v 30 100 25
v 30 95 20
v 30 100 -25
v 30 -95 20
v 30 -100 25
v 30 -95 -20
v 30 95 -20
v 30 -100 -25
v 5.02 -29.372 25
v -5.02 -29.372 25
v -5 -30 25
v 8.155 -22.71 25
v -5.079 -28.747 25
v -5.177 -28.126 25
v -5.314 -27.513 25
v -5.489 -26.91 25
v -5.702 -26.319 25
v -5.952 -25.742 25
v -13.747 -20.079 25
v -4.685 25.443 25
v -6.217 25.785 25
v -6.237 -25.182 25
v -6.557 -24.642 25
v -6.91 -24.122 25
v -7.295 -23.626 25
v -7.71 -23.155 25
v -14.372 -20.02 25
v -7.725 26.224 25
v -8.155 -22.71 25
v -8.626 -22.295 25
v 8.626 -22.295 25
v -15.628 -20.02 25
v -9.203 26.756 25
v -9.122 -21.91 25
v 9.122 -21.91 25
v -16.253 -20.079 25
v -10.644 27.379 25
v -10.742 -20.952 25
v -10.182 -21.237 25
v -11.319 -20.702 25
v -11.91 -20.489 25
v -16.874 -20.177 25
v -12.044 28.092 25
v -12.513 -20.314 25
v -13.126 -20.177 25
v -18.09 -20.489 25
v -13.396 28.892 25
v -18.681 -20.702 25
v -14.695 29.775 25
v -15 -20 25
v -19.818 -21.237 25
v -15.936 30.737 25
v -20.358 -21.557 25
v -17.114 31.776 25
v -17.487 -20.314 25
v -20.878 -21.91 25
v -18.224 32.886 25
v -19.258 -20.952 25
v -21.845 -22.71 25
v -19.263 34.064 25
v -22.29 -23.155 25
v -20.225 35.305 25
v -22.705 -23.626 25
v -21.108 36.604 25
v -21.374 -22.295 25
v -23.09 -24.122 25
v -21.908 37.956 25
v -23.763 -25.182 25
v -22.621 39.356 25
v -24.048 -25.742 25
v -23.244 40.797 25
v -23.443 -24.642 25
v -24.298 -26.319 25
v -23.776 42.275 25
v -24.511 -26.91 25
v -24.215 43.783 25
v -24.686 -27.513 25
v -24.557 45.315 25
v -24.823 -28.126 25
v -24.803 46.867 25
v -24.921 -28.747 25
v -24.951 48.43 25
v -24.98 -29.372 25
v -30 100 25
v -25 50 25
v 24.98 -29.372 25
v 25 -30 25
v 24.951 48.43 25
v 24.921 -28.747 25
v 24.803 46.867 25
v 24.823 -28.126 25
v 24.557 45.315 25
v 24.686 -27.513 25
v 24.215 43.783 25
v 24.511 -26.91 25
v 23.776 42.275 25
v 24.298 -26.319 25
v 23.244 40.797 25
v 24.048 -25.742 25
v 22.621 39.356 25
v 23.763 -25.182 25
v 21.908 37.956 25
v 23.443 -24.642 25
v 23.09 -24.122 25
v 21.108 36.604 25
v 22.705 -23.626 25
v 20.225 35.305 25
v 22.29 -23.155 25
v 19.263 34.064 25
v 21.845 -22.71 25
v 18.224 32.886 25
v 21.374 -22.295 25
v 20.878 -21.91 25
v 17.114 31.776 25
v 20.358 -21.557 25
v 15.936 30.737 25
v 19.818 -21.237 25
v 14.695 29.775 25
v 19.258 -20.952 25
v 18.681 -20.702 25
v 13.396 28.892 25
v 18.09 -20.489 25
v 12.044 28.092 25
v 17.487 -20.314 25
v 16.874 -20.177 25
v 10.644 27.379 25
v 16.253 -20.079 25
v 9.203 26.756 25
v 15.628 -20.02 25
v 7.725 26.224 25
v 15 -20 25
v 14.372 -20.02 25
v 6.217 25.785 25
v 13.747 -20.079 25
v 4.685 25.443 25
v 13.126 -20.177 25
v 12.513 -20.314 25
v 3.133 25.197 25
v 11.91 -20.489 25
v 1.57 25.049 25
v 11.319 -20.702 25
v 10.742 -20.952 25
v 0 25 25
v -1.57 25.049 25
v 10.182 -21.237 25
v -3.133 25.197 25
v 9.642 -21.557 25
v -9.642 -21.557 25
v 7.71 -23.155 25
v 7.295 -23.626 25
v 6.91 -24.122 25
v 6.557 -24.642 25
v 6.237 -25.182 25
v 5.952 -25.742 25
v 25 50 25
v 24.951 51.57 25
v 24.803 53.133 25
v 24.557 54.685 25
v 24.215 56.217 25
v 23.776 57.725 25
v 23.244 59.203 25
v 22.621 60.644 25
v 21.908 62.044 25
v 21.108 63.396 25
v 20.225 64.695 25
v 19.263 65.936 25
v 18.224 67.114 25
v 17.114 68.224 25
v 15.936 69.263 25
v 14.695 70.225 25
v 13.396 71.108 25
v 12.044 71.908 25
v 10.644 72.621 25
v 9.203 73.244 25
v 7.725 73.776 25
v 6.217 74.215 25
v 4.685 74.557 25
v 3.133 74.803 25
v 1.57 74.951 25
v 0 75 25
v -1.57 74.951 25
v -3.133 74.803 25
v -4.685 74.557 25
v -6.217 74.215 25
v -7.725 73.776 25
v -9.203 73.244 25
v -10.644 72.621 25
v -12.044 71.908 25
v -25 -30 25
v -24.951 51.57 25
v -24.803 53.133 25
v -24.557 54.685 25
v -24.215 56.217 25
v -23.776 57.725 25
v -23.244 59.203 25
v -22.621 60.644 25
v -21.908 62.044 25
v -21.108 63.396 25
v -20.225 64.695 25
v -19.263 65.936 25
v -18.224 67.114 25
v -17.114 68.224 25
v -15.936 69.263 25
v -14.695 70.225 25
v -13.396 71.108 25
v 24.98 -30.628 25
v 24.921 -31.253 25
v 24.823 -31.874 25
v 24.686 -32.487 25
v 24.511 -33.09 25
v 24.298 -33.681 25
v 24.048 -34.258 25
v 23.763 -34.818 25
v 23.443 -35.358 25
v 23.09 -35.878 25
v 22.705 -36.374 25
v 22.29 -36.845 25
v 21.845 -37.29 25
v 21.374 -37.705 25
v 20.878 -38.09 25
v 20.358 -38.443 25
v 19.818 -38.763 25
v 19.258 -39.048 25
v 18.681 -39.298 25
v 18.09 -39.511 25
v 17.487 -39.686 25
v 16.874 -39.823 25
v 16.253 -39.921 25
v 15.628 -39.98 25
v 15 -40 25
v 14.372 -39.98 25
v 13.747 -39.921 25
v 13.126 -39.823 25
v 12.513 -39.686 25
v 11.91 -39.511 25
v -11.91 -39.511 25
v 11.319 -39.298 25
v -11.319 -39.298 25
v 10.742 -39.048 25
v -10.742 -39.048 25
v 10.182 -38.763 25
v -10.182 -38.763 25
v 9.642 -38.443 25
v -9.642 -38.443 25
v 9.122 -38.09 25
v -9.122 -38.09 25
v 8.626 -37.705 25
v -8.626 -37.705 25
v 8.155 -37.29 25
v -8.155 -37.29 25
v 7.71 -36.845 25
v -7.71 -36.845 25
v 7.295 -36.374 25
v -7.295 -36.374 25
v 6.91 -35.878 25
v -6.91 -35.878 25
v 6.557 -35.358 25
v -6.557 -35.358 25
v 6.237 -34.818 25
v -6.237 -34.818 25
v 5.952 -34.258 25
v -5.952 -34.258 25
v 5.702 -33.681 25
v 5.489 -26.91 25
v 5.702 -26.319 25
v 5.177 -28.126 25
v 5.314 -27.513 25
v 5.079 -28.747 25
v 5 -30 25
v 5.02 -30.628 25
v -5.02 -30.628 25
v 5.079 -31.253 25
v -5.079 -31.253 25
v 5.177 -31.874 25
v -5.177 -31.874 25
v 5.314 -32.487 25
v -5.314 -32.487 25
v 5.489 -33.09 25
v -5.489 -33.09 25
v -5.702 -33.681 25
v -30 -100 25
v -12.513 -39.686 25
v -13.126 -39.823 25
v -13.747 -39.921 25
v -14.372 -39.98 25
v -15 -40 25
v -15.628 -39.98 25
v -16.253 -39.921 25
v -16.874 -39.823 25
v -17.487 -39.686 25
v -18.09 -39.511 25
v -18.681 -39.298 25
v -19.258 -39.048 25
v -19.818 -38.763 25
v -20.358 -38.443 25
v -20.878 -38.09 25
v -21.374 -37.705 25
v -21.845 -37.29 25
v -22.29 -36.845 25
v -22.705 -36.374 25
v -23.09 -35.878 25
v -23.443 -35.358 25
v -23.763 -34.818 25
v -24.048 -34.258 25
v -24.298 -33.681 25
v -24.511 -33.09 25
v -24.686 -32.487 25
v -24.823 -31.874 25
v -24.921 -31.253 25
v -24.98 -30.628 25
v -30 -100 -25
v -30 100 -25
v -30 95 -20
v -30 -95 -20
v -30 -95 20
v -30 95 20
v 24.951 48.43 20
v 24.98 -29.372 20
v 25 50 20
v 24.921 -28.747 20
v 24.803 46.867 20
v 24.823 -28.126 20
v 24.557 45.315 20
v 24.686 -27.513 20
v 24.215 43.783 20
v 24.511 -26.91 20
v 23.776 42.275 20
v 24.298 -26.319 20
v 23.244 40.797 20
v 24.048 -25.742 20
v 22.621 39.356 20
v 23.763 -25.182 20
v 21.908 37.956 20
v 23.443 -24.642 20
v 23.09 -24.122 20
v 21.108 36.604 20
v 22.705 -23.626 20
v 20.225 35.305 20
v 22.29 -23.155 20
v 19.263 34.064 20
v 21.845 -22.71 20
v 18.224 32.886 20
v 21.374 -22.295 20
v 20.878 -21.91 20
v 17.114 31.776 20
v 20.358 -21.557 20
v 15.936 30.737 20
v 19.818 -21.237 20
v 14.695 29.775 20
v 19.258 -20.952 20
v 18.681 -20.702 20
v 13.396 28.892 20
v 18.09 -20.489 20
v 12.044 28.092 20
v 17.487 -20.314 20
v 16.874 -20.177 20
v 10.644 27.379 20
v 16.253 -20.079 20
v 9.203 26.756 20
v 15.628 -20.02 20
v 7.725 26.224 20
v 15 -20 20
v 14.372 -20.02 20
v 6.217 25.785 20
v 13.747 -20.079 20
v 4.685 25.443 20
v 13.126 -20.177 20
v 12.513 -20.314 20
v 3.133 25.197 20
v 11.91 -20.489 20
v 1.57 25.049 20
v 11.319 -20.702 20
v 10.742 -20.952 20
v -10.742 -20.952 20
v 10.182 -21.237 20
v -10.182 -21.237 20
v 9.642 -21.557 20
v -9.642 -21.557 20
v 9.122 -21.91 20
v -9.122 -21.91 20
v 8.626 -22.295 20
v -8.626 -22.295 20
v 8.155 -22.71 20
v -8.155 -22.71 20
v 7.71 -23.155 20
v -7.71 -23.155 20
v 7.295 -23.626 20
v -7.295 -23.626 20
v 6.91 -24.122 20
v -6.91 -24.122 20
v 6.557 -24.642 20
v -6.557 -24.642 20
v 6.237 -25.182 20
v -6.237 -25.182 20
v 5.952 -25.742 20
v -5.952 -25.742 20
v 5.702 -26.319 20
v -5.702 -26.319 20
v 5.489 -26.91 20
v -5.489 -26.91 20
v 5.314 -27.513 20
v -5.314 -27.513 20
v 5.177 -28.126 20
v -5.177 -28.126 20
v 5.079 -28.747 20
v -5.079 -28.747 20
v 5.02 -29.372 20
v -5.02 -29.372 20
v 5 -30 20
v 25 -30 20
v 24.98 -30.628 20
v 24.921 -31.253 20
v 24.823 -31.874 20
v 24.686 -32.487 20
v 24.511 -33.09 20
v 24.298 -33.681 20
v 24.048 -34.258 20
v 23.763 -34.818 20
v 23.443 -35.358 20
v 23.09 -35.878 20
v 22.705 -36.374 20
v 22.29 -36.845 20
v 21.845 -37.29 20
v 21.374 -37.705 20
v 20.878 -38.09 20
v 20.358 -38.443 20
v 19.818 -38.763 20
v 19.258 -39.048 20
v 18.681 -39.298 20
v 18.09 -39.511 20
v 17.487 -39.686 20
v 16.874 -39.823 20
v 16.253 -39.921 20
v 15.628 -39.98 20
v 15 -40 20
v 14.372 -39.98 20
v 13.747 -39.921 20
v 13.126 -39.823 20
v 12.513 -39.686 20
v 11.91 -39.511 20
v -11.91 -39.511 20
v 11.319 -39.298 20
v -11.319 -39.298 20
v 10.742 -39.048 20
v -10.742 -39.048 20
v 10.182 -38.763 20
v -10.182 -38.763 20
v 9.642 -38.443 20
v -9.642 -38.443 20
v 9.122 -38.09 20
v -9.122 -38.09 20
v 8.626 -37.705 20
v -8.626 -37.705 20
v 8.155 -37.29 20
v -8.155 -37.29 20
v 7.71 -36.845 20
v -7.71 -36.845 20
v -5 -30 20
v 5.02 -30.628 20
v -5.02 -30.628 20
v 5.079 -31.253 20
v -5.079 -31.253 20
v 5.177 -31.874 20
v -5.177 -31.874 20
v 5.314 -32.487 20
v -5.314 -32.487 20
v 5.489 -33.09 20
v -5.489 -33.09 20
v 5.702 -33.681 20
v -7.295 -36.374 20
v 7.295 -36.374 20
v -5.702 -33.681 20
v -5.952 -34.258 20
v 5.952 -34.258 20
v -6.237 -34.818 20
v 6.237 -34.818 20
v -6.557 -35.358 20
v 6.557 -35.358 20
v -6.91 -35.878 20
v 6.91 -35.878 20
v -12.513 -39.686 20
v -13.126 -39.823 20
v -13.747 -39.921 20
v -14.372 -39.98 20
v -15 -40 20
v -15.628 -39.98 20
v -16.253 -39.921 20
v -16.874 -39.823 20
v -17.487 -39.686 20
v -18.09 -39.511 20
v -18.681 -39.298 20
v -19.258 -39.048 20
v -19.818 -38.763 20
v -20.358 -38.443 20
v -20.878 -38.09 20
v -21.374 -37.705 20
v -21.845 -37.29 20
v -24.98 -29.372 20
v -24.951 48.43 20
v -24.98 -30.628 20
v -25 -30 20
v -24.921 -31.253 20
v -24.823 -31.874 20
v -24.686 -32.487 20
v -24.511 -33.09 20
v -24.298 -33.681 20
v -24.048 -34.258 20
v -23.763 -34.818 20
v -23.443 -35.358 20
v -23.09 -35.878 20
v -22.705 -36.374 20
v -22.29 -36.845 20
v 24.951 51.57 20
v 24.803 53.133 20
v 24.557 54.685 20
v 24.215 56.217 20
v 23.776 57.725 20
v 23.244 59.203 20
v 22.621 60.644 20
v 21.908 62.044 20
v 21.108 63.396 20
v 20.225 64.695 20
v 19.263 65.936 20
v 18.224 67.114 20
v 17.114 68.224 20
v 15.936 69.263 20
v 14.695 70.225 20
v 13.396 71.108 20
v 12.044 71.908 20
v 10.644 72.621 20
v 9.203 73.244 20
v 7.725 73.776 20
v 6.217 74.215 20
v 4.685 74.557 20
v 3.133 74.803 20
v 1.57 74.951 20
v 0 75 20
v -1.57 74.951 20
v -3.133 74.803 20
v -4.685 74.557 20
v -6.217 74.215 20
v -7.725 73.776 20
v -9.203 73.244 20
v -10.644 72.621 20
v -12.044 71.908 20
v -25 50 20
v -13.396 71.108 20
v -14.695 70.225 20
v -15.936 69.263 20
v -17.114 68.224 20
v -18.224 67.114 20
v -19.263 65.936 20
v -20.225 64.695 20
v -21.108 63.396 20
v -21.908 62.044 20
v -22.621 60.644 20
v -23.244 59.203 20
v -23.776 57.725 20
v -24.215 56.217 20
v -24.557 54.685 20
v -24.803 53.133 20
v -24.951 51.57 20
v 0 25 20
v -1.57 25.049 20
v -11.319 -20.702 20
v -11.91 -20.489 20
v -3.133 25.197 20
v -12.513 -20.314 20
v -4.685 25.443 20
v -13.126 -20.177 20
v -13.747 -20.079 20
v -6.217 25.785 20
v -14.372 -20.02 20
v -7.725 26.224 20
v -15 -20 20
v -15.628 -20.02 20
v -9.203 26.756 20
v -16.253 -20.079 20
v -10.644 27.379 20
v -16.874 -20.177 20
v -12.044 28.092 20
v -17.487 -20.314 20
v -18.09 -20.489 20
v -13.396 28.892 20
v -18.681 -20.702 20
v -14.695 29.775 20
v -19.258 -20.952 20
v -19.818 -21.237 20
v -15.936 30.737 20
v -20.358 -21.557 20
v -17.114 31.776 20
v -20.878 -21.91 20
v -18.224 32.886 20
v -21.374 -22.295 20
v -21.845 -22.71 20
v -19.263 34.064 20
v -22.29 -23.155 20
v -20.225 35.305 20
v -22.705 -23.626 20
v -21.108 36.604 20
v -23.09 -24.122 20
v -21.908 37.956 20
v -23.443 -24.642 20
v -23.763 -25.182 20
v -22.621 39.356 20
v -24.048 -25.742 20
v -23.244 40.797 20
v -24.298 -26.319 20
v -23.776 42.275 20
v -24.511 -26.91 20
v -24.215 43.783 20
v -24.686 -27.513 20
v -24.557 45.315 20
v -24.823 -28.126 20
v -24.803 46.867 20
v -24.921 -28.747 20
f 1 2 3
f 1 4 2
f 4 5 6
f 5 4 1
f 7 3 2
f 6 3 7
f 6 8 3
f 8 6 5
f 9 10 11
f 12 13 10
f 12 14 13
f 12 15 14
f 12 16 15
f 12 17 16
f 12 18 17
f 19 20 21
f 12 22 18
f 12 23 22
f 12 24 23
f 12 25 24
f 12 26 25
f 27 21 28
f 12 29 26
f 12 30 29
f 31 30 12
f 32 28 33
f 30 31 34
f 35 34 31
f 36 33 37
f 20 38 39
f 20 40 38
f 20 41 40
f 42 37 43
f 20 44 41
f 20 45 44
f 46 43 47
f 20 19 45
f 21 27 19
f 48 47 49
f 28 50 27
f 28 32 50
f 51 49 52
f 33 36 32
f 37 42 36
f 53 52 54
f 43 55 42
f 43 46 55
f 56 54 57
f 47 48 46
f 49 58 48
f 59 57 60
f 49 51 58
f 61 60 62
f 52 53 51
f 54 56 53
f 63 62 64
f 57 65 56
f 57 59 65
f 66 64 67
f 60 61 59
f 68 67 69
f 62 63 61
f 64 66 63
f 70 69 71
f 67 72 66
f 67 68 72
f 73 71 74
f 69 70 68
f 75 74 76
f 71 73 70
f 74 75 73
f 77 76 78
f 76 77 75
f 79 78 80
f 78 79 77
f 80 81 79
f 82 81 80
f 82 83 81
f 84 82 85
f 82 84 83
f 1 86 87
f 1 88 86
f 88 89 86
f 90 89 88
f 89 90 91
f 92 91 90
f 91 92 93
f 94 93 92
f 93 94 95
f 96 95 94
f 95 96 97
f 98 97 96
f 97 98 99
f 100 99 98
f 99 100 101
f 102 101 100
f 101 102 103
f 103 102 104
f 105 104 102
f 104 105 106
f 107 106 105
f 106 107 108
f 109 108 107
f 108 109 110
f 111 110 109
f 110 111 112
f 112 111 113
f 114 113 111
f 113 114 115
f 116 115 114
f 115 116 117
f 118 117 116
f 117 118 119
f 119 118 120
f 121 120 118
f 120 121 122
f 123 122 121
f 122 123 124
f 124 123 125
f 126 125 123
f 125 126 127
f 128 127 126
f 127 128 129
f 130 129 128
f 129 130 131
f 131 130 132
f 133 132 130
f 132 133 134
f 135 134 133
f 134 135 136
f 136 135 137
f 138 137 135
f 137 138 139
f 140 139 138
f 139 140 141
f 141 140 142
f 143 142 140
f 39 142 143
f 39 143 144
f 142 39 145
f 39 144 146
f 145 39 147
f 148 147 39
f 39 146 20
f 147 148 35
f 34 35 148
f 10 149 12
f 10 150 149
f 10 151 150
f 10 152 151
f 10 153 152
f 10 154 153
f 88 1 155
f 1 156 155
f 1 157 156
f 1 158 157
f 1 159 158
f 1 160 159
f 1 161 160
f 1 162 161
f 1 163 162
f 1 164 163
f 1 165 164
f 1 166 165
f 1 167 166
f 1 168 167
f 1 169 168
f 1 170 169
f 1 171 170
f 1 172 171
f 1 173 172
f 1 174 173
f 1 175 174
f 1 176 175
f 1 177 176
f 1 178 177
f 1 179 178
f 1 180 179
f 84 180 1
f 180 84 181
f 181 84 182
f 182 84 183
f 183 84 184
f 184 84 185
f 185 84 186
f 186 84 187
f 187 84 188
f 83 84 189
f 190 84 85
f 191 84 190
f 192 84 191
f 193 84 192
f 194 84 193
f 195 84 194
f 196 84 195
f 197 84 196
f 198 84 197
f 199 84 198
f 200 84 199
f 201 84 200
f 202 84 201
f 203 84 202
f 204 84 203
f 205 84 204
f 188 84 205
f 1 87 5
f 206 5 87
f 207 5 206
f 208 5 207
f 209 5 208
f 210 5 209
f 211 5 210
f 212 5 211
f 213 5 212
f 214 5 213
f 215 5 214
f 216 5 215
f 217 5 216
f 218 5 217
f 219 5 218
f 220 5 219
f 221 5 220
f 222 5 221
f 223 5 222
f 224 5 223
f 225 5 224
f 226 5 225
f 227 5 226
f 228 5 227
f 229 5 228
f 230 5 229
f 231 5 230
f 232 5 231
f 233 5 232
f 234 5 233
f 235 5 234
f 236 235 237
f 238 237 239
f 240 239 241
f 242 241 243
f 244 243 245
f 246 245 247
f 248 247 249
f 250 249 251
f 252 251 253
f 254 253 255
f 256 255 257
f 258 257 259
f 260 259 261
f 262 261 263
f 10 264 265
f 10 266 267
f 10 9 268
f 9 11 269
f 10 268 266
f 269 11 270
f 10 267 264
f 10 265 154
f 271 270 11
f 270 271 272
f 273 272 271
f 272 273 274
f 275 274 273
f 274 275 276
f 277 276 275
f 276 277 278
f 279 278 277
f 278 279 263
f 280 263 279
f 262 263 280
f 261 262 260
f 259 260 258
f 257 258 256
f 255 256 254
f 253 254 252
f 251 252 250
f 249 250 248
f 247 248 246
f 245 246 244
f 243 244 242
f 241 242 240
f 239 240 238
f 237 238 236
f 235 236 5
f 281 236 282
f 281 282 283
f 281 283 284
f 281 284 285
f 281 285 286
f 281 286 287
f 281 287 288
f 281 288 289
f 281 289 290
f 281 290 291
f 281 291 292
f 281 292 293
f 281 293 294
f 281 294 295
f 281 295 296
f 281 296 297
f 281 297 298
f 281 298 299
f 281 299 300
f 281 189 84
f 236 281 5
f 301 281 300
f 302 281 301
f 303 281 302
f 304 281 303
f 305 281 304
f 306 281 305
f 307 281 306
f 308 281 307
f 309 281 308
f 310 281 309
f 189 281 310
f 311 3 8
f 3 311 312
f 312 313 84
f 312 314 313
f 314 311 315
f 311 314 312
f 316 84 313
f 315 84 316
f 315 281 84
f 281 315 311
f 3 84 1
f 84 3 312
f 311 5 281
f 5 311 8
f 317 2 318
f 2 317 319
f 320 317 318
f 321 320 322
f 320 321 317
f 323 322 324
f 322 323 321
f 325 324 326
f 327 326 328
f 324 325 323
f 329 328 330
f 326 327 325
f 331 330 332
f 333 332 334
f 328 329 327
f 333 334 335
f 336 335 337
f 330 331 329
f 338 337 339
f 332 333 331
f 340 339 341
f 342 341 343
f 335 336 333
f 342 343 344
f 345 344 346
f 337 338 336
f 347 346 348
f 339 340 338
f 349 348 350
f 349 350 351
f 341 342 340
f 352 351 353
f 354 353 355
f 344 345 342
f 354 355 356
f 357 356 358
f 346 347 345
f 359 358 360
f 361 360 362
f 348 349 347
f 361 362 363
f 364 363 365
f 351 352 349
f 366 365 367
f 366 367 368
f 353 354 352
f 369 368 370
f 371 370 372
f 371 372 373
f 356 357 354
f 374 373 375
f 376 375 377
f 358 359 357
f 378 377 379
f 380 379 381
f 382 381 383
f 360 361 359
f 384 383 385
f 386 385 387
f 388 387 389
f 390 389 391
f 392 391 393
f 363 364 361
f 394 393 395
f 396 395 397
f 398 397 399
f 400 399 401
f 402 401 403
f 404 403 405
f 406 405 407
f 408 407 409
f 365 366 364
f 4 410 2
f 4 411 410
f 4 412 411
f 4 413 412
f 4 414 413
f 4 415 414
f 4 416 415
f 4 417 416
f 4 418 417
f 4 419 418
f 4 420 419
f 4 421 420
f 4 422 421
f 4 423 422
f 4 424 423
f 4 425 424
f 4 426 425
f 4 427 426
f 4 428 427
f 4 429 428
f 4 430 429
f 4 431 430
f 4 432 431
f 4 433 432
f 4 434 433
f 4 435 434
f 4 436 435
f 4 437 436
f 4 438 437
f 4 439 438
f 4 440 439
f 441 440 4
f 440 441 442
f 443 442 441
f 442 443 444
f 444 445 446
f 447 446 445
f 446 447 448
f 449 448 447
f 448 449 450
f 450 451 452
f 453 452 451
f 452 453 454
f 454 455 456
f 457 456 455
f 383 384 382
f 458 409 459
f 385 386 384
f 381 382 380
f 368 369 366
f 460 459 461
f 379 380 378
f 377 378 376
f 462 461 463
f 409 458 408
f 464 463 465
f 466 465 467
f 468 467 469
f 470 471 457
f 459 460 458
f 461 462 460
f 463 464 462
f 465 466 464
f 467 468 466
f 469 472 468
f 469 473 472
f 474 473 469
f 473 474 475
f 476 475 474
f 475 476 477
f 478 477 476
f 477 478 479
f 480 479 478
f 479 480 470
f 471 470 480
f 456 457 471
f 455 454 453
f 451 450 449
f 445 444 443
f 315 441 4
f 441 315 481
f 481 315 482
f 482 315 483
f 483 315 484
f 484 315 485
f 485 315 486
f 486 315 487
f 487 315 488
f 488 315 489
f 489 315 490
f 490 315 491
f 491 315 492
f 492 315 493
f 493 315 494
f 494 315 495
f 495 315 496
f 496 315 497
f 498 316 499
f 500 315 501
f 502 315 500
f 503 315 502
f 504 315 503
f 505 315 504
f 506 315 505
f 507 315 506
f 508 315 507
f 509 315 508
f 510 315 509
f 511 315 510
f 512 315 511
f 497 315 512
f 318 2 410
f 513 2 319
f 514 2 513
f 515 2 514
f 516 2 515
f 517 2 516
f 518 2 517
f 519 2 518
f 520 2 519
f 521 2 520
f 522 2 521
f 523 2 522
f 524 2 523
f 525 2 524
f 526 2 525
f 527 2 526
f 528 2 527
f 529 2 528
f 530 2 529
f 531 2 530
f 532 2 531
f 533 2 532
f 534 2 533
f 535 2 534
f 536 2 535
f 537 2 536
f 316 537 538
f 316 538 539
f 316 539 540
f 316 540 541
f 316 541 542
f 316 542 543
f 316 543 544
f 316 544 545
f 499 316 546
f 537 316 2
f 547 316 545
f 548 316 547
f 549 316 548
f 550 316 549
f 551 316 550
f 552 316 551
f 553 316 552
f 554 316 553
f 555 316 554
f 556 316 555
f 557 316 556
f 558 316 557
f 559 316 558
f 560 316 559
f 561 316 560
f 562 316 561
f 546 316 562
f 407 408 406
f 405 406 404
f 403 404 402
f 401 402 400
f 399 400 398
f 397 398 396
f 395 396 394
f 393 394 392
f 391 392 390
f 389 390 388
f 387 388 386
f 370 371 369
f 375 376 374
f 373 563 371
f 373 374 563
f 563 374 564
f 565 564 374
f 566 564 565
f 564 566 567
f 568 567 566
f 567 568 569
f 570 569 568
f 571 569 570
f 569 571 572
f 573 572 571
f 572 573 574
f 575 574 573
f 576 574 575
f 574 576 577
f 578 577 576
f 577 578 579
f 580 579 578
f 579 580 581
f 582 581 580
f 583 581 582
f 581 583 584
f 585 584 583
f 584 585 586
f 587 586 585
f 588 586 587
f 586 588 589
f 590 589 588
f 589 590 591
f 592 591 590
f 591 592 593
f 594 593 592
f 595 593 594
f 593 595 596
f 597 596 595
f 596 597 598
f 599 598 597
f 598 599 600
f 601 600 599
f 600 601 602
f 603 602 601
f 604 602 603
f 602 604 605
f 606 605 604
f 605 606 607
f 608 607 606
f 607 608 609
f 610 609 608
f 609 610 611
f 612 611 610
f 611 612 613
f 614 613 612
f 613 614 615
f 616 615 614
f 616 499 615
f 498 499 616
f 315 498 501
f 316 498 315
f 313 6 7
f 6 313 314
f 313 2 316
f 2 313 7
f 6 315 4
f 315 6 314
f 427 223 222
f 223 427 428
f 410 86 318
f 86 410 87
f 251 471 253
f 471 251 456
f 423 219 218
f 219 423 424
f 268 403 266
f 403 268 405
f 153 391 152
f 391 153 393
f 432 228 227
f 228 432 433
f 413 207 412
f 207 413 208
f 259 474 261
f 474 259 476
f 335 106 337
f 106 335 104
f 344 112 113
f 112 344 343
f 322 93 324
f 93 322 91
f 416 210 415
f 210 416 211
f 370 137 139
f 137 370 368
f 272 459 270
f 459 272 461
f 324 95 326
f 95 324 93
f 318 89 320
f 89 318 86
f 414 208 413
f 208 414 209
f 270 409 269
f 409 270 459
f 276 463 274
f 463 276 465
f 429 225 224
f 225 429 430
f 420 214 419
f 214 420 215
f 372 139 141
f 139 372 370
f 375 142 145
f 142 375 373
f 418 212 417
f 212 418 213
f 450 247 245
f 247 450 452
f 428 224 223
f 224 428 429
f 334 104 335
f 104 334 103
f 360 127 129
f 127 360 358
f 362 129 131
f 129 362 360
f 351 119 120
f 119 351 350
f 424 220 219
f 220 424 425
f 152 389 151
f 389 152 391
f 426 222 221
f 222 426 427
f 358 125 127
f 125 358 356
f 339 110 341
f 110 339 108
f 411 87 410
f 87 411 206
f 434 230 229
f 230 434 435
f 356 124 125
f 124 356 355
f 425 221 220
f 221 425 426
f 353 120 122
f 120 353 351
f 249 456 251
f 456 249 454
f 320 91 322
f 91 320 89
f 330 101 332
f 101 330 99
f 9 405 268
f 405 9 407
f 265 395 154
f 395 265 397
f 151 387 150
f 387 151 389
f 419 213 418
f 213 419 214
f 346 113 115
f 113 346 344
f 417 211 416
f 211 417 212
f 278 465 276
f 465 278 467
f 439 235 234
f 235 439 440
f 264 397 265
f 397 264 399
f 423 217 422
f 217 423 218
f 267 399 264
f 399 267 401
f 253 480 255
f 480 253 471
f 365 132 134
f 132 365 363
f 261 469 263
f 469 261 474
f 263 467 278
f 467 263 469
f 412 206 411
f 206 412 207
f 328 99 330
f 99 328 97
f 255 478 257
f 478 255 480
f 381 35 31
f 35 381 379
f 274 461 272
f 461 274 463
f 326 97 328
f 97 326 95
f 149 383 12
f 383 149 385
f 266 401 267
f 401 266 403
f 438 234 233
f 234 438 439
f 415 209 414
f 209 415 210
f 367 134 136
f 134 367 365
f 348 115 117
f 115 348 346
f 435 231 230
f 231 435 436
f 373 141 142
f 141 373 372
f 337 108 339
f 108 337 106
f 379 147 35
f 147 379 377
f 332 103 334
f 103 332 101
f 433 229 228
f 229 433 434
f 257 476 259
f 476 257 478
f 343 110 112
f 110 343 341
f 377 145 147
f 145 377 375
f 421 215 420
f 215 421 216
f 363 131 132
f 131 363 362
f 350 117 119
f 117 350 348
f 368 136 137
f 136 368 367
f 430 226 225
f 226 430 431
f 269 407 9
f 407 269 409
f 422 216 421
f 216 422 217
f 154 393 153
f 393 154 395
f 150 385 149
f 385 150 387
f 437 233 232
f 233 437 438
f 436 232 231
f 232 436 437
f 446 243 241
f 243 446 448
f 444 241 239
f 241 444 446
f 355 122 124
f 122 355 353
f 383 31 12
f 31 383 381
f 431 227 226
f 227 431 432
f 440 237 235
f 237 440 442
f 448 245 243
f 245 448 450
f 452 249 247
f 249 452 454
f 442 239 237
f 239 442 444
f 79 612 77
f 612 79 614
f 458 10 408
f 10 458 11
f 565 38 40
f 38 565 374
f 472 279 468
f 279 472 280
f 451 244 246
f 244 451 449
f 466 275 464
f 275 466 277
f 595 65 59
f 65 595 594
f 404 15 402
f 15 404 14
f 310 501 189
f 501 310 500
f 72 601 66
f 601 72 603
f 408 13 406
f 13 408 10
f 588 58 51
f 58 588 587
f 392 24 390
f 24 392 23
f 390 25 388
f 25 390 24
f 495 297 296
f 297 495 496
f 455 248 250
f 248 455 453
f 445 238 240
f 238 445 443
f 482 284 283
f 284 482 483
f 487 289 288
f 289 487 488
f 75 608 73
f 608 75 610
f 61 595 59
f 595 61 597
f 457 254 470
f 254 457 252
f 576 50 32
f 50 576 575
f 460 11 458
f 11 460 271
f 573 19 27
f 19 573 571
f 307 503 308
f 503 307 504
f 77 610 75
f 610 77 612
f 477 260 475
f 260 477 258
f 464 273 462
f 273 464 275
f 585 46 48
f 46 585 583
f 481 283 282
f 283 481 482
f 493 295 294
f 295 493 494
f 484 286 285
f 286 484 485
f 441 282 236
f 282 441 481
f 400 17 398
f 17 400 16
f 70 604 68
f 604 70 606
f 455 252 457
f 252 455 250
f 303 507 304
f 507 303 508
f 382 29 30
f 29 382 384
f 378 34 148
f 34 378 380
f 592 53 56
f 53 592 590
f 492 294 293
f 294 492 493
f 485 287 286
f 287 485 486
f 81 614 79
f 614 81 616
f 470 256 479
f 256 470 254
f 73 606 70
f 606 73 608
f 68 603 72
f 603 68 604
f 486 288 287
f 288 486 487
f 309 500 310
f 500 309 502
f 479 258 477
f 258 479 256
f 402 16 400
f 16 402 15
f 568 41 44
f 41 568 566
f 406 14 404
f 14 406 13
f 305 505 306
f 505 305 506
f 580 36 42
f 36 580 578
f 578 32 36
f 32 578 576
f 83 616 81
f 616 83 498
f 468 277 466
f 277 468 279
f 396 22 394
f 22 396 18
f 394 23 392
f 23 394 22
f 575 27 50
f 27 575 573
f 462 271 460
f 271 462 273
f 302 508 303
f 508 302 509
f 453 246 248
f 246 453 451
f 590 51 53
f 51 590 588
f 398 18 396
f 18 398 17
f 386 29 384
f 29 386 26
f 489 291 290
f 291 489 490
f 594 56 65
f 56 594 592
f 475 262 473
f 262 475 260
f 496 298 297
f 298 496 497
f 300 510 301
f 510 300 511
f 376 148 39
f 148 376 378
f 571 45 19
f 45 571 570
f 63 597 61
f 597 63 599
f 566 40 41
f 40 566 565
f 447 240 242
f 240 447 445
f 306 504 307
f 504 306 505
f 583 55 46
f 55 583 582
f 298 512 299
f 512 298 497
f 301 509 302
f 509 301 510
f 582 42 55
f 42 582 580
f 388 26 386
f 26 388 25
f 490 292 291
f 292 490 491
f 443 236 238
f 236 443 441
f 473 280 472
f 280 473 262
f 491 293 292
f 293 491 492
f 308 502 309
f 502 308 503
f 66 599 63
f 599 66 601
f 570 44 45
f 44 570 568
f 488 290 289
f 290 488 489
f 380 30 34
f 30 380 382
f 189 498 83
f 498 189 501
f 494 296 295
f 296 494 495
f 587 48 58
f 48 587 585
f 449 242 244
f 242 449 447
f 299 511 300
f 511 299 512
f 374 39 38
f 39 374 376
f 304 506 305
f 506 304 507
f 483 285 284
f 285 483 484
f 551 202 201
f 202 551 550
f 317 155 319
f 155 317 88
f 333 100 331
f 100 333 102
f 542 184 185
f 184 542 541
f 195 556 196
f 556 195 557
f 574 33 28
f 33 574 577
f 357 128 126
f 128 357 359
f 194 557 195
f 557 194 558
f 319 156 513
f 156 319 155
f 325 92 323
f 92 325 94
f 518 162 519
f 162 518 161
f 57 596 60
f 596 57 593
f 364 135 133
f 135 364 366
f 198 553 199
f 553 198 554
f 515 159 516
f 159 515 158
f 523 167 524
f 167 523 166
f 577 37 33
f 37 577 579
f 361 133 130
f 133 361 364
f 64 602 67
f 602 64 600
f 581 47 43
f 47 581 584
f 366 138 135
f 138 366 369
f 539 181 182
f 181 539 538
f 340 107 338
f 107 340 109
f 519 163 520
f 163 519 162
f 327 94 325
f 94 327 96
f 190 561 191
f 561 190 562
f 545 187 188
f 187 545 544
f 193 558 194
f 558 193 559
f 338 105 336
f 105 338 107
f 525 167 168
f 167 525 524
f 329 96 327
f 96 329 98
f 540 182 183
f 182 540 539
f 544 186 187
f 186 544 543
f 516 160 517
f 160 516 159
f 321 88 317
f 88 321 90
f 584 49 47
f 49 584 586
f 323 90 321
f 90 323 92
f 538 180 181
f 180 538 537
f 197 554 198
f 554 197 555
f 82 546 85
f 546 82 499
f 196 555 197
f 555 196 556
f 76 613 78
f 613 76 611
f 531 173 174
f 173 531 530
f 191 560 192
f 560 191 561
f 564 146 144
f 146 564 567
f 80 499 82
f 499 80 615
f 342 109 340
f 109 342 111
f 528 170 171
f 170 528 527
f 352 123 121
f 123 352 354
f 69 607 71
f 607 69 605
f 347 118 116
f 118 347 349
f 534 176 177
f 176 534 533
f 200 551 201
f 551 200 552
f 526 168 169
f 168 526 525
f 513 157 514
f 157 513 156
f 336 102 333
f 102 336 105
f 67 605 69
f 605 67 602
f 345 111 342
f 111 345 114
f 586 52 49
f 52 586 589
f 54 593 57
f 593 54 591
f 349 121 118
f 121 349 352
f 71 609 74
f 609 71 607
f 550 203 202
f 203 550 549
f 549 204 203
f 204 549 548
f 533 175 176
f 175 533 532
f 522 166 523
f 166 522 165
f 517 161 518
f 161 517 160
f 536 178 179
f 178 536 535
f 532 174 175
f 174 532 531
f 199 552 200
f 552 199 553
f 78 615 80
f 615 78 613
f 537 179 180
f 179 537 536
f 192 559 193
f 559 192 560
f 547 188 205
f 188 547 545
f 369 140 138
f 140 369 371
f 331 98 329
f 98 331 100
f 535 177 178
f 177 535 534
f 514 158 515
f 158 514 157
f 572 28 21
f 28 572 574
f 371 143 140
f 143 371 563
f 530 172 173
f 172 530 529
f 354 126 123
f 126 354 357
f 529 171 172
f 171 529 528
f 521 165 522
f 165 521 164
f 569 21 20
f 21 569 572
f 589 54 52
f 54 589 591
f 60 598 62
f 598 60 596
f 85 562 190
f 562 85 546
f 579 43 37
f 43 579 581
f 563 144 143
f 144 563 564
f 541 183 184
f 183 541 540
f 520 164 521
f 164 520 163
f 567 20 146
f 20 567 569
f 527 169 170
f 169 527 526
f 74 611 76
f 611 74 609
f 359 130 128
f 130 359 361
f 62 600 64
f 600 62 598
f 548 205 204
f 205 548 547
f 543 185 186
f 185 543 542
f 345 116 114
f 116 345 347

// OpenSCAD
// linear_extrude(4)
// text("disenoUDP");

extLadoX = 60.0;
extLadoY = 200.0;
extLadoZ = 50.0;

intLadoX = 80.0;
intLadoY = 190.0;
intLadoZ = 40.0;

radioPerilla = 20.0;

module cajita(
    extLadoX,
    extLadoY,
    extLadoZ,
    intLadoX,
    intLadoY,
    intLadoZ,
    )
    {
    difference() {
    cube(
    [
    extLadoX,
    extLadoY,
    extLadoZ
    ],
    center = true);
    cube(
    [
    intLadoX,
    intLadoY,
    intLadoZ
    ],
    center = true);
    
    
    translate([15, -30, 20])
    cylinder (h = 20, r=10, center = true, $fn=100);
    
    translate([-15, -30, 20])
    cylinder (h = 20, r=10, center = true, $fn=100);
    
    translate([0, 50, 20])
    cylinder (h = 20, r=25, center = true, $fn=100);
    
    
    }
    
  
    
    
    
    
 

};


cajita(
    extLadoX,
    extLadoY,
    extLadoZ,
    intLadoX,
    intLadoY,
    intLadoZ);
